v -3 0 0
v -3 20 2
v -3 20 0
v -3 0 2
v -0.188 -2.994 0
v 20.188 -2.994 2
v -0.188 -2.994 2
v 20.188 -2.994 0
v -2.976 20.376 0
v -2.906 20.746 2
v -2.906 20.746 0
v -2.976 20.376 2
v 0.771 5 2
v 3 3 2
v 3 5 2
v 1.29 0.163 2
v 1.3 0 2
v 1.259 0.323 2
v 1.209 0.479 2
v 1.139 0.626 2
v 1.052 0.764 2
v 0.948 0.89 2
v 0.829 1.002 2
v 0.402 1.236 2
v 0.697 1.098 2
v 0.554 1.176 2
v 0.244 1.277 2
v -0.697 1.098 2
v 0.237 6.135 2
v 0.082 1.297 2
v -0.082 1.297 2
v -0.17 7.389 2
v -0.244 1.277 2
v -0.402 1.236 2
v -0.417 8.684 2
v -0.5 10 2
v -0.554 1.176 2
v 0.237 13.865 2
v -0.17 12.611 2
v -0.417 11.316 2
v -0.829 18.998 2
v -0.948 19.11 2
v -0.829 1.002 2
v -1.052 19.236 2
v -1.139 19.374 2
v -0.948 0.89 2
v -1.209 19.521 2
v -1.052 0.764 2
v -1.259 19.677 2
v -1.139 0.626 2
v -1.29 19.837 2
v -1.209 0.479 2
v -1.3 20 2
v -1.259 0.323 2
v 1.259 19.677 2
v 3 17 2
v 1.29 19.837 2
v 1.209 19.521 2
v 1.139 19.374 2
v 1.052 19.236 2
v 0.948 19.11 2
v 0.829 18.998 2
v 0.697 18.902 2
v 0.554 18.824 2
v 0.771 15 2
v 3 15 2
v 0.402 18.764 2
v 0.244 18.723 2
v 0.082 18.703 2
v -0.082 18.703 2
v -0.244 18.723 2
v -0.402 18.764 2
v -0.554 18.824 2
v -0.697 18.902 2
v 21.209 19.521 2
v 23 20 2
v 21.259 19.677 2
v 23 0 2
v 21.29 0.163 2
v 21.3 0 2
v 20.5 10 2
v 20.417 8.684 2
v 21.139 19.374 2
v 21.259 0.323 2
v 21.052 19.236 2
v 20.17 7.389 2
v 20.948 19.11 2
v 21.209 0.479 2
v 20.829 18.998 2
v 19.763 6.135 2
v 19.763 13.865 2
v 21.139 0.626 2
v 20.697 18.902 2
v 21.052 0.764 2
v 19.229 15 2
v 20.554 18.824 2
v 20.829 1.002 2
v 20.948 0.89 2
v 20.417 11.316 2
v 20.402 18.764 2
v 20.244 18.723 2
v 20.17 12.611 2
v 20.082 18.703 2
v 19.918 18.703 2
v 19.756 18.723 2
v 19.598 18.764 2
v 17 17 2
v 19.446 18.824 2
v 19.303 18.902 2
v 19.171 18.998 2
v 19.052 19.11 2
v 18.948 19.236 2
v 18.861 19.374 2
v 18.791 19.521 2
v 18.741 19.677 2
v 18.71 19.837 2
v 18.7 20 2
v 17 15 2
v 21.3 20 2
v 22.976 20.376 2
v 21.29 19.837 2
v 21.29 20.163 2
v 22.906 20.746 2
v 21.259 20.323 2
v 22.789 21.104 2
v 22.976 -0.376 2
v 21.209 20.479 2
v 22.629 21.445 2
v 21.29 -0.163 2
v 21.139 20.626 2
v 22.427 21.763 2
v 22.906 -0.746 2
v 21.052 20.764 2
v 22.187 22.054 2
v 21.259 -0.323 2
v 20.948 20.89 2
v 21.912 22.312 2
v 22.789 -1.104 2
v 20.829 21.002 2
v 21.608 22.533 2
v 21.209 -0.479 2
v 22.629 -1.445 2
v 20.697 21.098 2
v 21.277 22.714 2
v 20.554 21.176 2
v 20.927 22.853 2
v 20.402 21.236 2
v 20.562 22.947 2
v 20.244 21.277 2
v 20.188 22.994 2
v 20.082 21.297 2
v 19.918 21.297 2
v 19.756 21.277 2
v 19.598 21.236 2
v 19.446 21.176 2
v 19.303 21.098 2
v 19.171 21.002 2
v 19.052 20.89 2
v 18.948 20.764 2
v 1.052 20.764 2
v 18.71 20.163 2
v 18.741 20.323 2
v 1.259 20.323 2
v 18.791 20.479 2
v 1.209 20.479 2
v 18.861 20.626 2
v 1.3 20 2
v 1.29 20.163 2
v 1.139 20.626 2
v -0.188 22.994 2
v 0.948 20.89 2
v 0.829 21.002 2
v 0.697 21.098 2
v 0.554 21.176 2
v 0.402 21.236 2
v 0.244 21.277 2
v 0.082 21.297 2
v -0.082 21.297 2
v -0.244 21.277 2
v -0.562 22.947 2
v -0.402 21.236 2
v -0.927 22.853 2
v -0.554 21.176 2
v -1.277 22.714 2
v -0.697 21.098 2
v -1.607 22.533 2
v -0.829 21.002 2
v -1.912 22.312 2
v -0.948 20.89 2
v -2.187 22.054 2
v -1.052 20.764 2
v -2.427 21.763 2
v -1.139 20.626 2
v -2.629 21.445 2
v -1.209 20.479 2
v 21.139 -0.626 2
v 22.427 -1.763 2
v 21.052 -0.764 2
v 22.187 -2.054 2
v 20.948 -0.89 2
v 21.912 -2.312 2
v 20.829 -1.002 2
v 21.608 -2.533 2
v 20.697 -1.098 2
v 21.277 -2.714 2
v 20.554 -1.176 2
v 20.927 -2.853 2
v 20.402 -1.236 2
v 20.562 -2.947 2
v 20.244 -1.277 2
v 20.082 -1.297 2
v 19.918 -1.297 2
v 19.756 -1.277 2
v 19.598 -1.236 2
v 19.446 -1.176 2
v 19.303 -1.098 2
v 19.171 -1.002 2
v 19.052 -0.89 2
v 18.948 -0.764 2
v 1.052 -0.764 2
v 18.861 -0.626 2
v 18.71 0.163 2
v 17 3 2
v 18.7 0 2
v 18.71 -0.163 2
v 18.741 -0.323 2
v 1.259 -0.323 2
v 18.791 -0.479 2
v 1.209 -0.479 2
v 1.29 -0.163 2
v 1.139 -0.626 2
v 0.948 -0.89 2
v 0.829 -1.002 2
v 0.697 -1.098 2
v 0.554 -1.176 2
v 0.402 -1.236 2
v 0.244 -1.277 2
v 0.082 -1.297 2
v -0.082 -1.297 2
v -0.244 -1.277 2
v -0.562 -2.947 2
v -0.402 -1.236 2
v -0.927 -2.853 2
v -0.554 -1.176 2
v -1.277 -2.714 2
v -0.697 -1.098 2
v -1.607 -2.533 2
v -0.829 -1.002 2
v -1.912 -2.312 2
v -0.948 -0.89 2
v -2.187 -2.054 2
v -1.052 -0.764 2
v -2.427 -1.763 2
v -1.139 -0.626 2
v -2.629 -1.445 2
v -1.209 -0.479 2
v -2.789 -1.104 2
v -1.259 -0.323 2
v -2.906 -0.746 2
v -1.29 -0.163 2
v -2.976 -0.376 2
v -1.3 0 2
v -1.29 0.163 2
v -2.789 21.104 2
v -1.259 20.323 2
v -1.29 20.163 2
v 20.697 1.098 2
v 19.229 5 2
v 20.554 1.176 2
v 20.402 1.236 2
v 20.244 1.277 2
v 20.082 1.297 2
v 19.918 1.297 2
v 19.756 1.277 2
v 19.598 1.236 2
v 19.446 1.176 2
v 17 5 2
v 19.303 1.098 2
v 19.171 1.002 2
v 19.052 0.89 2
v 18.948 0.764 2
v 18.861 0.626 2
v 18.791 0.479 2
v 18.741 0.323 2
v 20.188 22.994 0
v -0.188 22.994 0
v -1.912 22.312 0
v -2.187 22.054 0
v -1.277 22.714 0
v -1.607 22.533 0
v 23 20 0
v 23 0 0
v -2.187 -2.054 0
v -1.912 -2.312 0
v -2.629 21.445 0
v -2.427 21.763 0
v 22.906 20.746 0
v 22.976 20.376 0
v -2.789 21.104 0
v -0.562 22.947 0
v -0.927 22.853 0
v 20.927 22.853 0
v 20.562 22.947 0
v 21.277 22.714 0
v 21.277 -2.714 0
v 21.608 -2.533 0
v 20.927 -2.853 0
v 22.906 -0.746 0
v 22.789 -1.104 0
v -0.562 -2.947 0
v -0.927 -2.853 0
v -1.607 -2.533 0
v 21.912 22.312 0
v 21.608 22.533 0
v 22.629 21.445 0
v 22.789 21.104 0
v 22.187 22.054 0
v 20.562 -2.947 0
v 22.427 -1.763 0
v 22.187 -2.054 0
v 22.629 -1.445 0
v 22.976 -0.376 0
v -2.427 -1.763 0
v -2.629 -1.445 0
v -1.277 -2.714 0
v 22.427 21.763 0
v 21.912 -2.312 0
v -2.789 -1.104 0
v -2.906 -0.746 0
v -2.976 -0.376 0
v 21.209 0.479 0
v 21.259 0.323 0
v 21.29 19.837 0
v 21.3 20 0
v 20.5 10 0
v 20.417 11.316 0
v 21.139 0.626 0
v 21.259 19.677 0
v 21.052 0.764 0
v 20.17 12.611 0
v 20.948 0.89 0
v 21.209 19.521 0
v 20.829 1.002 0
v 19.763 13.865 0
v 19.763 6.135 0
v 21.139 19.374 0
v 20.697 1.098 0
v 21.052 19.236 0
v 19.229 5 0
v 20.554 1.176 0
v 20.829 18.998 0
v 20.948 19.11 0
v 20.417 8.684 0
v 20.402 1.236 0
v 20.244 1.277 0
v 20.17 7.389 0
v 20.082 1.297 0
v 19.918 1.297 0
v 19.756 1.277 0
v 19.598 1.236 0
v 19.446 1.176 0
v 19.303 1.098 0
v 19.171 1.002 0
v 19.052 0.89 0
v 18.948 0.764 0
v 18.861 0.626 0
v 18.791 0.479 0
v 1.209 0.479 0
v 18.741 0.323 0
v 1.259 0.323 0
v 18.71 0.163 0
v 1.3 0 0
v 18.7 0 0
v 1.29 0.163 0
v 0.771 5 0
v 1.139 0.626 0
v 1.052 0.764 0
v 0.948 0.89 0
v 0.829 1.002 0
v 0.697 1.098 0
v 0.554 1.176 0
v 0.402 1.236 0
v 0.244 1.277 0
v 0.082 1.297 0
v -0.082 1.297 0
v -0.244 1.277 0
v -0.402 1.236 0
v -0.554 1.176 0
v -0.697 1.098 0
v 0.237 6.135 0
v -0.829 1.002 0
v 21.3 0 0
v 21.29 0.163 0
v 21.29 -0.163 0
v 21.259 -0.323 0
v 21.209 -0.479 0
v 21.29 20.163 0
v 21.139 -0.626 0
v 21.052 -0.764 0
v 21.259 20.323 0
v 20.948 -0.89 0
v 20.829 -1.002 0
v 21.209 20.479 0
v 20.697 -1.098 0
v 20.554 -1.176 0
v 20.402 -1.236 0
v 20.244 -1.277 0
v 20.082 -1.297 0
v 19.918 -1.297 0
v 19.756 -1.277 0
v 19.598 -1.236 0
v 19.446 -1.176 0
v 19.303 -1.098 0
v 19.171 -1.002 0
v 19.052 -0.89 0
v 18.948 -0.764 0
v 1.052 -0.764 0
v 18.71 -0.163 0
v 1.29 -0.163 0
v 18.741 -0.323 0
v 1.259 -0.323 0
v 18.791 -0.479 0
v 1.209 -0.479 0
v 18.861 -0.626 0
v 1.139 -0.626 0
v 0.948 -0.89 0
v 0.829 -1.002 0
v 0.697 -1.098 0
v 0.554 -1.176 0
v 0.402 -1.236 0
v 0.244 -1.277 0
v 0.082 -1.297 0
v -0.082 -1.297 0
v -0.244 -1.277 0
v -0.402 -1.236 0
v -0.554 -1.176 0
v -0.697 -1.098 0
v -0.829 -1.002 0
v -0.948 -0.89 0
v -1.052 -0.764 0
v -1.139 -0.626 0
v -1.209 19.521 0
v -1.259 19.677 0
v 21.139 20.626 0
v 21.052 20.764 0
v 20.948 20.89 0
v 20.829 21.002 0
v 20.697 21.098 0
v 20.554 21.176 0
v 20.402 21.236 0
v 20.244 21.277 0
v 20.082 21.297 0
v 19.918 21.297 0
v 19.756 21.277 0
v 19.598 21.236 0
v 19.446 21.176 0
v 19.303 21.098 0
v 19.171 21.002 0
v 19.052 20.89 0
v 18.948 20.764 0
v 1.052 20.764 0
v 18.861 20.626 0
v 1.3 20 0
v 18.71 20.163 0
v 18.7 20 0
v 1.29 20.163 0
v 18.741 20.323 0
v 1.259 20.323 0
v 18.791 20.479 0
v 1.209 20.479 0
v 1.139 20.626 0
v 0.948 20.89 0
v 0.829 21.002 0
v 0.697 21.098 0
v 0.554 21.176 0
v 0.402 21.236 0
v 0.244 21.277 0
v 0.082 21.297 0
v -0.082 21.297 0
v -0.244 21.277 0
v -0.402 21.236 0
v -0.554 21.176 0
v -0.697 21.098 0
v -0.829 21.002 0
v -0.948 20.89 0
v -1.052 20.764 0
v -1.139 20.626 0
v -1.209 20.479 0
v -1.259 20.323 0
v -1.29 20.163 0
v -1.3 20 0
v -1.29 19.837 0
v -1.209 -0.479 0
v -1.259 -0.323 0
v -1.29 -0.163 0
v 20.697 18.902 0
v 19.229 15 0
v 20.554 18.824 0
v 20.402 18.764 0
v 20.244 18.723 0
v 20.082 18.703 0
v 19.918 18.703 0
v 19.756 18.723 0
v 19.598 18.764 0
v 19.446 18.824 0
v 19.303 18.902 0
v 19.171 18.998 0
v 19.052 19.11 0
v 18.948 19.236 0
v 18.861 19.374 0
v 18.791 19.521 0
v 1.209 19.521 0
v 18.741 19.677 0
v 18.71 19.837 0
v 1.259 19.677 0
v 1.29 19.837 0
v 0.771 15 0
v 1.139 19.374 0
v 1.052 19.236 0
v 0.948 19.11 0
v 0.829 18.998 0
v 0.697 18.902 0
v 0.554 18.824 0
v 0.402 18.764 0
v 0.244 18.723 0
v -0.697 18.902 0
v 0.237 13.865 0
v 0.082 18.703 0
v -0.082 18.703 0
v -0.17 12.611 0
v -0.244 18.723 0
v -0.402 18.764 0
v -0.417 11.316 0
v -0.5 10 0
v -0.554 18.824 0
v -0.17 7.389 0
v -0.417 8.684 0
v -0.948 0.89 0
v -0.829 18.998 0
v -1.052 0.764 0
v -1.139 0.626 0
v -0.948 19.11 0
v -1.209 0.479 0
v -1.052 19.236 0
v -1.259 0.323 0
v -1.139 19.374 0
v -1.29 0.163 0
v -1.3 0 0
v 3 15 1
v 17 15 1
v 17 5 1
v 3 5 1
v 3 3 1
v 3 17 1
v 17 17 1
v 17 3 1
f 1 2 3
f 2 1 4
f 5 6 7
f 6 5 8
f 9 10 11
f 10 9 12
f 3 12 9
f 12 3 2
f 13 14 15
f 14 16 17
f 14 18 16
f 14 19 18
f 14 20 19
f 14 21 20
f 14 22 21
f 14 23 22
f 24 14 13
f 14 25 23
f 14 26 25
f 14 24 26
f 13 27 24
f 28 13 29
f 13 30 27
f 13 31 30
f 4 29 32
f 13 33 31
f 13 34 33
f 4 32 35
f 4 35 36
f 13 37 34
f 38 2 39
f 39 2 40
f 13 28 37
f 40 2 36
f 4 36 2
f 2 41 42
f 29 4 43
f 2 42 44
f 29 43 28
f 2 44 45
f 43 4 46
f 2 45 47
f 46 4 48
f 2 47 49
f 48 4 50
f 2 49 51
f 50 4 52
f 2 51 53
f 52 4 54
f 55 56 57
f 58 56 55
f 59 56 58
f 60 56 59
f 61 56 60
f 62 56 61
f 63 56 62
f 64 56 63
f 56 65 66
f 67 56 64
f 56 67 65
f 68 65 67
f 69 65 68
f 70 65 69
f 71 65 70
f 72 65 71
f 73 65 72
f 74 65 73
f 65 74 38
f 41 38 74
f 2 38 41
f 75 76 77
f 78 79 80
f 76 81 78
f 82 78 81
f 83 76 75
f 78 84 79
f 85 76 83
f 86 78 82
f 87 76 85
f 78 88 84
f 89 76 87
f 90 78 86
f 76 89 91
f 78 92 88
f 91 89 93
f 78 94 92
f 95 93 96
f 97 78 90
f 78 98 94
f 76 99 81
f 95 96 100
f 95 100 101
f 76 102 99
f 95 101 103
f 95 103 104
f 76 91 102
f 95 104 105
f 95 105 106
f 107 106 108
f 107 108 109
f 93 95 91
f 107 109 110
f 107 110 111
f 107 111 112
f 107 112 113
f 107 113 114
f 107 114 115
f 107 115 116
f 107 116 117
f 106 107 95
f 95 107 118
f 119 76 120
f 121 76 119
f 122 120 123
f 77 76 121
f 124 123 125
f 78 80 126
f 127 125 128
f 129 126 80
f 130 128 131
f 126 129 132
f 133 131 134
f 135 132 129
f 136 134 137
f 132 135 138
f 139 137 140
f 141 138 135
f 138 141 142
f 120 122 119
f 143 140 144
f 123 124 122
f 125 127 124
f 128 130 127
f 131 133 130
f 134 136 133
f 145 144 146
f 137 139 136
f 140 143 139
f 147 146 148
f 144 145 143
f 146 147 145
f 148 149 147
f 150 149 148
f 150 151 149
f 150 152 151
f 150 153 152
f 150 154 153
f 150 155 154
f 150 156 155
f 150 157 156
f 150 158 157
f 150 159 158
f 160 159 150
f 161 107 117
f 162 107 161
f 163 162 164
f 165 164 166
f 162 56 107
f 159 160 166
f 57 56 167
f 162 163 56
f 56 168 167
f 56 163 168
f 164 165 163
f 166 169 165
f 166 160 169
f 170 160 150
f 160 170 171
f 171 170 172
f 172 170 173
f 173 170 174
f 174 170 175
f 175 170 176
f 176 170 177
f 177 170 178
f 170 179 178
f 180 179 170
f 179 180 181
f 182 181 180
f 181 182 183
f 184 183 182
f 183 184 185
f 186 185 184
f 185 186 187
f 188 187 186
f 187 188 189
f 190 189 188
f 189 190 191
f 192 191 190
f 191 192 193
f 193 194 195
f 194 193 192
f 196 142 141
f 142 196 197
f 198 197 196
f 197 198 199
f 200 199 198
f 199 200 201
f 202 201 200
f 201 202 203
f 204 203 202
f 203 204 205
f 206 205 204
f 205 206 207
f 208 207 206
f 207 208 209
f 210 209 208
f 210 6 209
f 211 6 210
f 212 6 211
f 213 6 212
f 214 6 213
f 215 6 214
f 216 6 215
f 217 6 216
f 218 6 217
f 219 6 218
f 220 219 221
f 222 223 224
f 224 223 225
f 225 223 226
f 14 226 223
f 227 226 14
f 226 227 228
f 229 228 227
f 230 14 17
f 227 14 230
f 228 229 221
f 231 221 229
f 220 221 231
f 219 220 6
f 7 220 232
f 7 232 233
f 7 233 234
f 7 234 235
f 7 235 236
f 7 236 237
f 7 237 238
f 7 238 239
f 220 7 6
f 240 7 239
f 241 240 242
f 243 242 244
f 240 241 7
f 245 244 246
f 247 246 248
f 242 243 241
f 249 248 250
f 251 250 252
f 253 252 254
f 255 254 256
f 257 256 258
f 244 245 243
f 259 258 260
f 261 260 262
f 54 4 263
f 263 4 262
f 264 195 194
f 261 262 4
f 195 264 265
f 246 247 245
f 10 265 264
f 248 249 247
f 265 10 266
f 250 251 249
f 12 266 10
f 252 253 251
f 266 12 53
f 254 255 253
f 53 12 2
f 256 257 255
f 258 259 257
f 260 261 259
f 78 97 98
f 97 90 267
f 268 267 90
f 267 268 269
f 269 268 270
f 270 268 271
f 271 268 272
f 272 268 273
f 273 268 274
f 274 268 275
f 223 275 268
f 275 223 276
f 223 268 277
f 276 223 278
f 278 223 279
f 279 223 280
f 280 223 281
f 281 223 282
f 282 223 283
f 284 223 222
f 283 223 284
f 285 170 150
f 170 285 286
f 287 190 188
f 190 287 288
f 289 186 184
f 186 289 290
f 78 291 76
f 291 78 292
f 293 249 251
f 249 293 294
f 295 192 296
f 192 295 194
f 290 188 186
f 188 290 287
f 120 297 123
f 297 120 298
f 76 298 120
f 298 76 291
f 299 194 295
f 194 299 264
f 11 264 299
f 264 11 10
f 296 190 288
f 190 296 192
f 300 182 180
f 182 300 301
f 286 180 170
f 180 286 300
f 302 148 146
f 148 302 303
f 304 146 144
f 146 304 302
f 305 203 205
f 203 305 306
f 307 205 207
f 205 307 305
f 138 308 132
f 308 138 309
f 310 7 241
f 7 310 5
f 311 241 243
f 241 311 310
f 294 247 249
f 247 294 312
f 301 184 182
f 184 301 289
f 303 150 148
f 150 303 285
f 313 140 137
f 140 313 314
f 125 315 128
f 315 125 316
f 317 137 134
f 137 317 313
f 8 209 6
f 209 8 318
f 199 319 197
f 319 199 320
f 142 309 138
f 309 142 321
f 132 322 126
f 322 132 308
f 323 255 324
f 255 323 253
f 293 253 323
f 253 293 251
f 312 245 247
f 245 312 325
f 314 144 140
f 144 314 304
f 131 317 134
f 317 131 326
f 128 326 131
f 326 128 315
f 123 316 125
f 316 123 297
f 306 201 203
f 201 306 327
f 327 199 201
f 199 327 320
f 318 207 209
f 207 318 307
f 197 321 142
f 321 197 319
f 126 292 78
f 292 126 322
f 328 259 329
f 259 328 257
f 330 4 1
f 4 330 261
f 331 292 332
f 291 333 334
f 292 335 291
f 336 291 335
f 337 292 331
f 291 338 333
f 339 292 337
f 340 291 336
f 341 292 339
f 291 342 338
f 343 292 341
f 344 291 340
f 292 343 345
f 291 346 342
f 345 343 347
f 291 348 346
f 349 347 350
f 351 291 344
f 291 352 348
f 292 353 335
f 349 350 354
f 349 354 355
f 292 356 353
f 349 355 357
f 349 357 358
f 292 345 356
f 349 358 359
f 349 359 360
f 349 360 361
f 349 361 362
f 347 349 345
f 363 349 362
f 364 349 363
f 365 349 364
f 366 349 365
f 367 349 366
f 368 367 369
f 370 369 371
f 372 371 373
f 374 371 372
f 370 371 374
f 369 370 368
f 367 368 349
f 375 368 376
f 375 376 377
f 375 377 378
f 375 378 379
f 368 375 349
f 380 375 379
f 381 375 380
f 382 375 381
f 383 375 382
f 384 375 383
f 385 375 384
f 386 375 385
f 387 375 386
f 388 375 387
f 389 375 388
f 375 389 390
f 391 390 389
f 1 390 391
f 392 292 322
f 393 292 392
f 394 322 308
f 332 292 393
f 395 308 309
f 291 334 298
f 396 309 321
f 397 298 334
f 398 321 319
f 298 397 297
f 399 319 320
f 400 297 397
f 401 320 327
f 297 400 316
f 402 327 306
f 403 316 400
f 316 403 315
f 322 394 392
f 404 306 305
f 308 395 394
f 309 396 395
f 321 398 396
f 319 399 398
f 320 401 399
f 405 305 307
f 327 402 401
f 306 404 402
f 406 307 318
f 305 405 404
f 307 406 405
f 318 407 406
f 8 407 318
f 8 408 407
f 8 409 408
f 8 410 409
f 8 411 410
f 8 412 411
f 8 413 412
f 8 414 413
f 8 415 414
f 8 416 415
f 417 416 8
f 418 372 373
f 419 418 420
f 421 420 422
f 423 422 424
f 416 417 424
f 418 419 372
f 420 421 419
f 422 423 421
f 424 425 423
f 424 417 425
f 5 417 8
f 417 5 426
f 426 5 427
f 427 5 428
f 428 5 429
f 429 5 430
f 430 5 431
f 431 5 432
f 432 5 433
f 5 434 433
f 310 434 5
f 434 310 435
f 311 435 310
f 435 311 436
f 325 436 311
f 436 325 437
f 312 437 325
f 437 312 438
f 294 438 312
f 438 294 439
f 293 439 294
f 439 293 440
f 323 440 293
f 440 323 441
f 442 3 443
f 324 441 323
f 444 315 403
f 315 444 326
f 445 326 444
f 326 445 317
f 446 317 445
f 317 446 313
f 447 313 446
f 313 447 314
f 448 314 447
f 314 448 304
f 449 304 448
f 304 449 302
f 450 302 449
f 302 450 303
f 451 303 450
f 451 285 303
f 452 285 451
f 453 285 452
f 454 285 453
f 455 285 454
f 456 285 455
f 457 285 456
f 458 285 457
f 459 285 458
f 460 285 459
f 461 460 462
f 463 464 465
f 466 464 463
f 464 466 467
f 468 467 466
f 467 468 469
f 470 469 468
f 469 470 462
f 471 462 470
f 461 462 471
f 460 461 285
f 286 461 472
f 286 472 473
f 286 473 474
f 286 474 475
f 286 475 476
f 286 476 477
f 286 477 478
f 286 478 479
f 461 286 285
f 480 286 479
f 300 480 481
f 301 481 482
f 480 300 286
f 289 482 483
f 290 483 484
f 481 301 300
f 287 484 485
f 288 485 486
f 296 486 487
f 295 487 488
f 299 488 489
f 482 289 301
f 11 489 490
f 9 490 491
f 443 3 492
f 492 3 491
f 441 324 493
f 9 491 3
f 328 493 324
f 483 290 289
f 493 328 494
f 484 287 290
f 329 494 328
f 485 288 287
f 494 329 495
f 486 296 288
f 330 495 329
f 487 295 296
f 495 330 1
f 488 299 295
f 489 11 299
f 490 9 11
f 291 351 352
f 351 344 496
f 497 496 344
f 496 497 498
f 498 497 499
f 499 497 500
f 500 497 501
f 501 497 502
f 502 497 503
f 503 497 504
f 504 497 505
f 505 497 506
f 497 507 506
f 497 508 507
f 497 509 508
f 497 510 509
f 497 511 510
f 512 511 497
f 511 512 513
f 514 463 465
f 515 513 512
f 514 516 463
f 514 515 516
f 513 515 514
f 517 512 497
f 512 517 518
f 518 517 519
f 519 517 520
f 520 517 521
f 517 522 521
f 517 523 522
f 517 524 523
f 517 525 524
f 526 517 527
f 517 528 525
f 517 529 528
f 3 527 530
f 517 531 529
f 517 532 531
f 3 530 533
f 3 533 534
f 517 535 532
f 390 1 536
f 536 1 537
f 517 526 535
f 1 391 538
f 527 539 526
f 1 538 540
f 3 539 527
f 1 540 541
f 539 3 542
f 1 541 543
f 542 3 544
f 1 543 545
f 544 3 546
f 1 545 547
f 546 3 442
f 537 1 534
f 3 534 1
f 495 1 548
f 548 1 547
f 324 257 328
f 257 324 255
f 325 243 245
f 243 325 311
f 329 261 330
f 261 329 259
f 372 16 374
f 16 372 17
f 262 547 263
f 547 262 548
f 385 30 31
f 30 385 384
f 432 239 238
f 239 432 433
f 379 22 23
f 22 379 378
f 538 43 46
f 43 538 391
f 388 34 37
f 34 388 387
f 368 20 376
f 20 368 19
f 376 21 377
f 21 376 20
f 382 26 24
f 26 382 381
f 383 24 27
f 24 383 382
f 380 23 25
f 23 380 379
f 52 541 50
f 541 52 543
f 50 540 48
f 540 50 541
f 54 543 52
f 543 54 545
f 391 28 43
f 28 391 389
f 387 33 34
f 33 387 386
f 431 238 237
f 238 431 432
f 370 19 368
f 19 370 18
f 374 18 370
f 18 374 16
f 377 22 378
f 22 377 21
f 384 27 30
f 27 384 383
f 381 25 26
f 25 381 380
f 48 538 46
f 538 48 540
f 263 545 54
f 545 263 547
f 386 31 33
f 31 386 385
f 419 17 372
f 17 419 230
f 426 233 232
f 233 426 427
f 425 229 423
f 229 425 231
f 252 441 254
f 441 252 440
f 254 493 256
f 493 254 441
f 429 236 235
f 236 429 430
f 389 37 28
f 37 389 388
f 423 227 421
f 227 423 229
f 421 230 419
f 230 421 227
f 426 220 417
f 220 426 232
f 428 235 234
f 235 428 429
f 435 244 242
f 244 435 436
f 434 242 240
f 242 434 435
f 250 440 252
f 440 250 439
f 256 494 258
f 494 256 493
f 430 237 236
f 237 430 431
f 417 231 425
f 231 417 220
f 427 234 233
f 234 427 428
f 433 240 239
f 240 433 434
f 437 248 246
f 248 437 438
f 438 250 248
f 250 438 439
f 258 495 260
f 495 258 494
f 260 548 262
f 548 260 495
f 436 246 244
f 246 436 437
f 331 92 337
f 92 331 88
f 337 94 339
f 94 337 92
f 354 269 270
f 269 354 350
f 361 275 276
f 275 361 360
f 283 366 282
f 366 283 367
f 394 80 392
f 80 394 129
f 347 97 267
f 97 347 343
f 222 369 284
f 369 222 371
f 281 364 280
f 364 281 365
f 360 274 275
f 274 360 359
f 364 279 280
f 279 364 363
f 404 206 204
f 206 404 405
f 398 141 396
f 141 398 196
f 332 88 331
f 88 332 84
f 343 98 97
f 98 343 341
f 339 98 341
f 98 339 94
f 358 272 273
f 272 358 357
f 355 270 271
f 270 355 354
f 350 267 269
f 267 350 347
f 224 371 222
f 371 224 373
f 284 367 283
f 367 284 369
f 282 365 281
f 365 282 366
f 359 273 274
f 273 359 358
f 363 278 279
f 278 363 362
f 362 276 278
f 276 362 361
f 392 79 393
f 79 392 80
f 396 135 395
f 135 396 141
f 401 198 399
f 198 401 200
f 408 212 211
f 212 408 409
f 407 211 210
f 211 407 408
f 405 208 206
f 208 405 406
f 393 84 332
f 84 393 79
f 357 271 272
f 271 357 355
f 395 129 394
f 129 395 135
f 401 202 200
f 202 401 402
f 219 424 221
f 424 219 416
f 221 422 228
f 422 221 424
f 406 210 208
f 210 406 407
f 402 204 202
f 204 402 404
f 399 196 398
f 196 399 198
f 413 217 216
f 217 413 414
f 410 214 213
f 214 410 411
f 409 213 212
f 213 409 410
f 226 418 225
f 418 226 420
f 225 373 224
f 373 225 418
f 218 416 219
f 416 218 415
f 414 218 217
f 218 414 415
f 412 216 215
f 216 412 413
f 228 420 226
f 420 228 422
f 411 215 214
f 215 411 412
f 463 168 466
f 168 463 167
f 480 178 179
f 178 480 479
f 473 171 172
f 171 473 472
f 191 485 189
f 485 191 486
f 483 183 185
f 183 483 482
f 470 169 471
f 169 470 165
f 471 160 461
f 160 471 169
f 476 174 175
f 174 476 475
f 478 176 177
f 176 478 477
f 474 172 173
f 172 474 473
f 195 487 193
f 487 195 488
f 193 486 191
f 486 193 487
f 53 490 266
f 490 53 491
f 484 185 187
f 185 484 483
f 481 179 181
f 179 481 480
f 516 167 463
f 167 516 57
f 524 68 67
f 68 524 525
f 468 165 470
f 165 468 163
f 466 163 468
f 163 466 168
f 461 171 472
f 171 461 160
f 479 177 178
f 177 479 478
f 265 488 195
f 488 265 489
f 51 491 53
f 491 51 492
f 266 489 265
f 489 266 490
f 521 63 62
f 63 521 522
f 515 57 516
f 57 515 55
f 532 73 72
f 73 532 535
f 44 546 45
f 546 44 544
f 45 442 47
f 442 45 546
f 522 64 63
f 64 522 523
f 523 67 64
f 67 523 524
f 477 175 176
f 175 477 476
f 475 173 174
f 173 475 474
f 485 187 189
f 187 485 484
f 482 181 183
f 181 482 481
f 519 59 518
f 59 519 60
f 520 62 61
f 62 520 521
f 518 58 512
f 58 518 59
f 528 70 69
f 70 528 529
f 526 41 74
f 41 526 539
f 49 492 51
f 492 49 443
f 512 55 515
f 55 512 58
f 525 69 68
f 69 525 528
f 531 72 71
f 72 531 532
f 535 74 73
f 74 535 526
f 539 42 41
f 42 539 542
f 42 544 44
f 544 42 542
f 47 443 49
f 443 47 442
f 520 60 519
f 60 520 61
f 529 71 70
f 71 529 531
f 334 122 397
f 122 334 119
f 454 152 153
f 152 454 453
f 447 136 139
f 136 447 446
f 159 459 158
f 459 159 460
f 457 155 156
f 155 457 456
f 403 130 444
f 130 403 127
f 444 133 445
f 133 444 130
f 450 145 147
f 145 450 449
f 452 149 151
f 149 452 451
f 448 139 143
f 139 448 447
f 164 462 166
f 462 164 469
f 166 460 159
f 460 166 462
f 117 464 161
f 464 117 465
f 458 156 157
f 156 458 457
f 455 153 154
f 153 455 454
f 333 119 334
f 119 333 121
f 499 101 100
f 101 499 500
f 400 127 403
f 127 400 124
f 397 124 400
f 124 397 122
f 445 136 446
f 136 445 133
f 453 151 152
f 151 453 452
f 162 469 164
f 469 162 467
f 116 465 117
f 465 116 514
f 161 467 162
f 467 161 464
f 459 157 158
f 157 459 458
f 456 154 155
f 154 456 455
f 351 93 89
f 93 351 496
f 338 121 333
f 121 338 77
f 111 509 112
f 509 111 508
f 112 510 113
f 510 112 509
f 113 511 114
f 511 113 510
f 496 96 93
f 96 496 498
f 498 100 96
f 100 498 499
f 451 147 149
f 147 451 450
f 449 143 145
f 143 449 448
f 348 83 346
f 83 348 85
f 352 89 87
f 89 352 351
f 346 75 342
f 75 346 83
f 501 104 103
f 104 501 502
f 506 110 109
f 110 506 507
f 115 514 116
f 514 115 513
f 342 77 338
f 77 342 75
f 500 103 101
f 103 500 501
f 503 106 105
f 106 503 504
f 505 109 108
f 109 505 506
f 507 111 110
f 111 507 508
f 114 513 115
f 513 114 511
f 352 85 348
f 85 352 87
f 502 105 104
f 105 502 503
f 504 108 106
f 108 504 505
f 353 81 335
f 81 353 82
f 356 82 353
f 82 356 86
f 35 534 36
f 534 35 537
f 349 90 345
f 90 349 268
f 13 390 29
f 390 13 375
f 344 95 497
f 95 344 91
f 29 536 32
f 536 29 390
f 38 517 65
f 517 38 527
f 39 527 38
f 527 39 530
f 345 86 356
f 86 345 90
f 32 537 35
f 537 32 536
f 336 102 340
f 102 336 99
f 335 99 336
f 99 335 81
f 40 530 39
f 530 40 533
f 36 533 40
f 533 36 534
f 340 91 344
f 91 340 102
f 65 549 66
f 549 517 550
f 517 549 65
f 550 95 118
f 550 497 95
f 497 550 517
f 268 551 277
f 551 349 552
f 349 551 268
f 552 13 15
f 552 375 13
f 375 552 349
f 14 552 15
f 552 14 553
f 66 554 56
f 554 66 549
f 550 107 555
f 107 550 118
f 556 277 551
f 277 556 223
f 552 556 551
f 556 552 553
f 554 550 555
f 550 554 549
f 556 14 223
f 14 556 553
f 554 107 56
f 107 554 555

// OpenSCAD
//20x20 whoop vtx (diamons shape) adapter
$fn=50;


//baseplate
difference(){
        difference(){
            translate([-3,-3,0]) rcube([26, 26, 2], [3, 3, 3, 3]);
            
            
            translate([0,0,0]) cylinder(h=6,d=2.6);
            translate([20,0,0]) cylinder(h=6,d=2.6);
            translate([0,20,0]) cylinder(h=6,d=2.6);
            translate([20,20,0]) cylinder(h=6,d=2.6);
            
            
        }


//canopy cutout
    translate([10,10,15]) difference(){
                
        union(){
            sphere(d=21);
            rotate([180,0,0]) cylinder(h=30,d=21);
        }
        translate([-15,5,-30]) cube([30,10,40]);
        translate([-15,-15,-30]) cube([30,10,40]);
         
    }

    
translate([3,3,1]) cube([14,14,3]);
}



module rcube(size, radius) {
    hull() {
        // BL
        if(radius[0] == 0) cube([1, 1, size[2]]);
        else translate([radius[0], radius[0]]) cylinder(r = radius[0], h = size[2]);
        // BR
        if(radius[1] == 0) translate([size[0] - 1, 0]) cube([1, 1, size[2]]);
        else translate([size[0] - radius[1], radius[1]]) cylinder(r = radius[1], h = size[2]);
        // TR
        if(radius[2] == 0) translate([size[0] - 1, size[1] - 1])cube([1, 1, size[2]]);
        else translate([size[0] - radius[2], size[1] - radius[2]]) cylinder(r = radius[2], h = size[2]);
        // TL
        if(radius[3] == 0) translate([0, size[1] - 1]) cube([1, 1, size[2]]);
        else translate([radius[3], size[1] - radius[3]]) cylinder(r = radius[3], h = size[2]);
    }
}
